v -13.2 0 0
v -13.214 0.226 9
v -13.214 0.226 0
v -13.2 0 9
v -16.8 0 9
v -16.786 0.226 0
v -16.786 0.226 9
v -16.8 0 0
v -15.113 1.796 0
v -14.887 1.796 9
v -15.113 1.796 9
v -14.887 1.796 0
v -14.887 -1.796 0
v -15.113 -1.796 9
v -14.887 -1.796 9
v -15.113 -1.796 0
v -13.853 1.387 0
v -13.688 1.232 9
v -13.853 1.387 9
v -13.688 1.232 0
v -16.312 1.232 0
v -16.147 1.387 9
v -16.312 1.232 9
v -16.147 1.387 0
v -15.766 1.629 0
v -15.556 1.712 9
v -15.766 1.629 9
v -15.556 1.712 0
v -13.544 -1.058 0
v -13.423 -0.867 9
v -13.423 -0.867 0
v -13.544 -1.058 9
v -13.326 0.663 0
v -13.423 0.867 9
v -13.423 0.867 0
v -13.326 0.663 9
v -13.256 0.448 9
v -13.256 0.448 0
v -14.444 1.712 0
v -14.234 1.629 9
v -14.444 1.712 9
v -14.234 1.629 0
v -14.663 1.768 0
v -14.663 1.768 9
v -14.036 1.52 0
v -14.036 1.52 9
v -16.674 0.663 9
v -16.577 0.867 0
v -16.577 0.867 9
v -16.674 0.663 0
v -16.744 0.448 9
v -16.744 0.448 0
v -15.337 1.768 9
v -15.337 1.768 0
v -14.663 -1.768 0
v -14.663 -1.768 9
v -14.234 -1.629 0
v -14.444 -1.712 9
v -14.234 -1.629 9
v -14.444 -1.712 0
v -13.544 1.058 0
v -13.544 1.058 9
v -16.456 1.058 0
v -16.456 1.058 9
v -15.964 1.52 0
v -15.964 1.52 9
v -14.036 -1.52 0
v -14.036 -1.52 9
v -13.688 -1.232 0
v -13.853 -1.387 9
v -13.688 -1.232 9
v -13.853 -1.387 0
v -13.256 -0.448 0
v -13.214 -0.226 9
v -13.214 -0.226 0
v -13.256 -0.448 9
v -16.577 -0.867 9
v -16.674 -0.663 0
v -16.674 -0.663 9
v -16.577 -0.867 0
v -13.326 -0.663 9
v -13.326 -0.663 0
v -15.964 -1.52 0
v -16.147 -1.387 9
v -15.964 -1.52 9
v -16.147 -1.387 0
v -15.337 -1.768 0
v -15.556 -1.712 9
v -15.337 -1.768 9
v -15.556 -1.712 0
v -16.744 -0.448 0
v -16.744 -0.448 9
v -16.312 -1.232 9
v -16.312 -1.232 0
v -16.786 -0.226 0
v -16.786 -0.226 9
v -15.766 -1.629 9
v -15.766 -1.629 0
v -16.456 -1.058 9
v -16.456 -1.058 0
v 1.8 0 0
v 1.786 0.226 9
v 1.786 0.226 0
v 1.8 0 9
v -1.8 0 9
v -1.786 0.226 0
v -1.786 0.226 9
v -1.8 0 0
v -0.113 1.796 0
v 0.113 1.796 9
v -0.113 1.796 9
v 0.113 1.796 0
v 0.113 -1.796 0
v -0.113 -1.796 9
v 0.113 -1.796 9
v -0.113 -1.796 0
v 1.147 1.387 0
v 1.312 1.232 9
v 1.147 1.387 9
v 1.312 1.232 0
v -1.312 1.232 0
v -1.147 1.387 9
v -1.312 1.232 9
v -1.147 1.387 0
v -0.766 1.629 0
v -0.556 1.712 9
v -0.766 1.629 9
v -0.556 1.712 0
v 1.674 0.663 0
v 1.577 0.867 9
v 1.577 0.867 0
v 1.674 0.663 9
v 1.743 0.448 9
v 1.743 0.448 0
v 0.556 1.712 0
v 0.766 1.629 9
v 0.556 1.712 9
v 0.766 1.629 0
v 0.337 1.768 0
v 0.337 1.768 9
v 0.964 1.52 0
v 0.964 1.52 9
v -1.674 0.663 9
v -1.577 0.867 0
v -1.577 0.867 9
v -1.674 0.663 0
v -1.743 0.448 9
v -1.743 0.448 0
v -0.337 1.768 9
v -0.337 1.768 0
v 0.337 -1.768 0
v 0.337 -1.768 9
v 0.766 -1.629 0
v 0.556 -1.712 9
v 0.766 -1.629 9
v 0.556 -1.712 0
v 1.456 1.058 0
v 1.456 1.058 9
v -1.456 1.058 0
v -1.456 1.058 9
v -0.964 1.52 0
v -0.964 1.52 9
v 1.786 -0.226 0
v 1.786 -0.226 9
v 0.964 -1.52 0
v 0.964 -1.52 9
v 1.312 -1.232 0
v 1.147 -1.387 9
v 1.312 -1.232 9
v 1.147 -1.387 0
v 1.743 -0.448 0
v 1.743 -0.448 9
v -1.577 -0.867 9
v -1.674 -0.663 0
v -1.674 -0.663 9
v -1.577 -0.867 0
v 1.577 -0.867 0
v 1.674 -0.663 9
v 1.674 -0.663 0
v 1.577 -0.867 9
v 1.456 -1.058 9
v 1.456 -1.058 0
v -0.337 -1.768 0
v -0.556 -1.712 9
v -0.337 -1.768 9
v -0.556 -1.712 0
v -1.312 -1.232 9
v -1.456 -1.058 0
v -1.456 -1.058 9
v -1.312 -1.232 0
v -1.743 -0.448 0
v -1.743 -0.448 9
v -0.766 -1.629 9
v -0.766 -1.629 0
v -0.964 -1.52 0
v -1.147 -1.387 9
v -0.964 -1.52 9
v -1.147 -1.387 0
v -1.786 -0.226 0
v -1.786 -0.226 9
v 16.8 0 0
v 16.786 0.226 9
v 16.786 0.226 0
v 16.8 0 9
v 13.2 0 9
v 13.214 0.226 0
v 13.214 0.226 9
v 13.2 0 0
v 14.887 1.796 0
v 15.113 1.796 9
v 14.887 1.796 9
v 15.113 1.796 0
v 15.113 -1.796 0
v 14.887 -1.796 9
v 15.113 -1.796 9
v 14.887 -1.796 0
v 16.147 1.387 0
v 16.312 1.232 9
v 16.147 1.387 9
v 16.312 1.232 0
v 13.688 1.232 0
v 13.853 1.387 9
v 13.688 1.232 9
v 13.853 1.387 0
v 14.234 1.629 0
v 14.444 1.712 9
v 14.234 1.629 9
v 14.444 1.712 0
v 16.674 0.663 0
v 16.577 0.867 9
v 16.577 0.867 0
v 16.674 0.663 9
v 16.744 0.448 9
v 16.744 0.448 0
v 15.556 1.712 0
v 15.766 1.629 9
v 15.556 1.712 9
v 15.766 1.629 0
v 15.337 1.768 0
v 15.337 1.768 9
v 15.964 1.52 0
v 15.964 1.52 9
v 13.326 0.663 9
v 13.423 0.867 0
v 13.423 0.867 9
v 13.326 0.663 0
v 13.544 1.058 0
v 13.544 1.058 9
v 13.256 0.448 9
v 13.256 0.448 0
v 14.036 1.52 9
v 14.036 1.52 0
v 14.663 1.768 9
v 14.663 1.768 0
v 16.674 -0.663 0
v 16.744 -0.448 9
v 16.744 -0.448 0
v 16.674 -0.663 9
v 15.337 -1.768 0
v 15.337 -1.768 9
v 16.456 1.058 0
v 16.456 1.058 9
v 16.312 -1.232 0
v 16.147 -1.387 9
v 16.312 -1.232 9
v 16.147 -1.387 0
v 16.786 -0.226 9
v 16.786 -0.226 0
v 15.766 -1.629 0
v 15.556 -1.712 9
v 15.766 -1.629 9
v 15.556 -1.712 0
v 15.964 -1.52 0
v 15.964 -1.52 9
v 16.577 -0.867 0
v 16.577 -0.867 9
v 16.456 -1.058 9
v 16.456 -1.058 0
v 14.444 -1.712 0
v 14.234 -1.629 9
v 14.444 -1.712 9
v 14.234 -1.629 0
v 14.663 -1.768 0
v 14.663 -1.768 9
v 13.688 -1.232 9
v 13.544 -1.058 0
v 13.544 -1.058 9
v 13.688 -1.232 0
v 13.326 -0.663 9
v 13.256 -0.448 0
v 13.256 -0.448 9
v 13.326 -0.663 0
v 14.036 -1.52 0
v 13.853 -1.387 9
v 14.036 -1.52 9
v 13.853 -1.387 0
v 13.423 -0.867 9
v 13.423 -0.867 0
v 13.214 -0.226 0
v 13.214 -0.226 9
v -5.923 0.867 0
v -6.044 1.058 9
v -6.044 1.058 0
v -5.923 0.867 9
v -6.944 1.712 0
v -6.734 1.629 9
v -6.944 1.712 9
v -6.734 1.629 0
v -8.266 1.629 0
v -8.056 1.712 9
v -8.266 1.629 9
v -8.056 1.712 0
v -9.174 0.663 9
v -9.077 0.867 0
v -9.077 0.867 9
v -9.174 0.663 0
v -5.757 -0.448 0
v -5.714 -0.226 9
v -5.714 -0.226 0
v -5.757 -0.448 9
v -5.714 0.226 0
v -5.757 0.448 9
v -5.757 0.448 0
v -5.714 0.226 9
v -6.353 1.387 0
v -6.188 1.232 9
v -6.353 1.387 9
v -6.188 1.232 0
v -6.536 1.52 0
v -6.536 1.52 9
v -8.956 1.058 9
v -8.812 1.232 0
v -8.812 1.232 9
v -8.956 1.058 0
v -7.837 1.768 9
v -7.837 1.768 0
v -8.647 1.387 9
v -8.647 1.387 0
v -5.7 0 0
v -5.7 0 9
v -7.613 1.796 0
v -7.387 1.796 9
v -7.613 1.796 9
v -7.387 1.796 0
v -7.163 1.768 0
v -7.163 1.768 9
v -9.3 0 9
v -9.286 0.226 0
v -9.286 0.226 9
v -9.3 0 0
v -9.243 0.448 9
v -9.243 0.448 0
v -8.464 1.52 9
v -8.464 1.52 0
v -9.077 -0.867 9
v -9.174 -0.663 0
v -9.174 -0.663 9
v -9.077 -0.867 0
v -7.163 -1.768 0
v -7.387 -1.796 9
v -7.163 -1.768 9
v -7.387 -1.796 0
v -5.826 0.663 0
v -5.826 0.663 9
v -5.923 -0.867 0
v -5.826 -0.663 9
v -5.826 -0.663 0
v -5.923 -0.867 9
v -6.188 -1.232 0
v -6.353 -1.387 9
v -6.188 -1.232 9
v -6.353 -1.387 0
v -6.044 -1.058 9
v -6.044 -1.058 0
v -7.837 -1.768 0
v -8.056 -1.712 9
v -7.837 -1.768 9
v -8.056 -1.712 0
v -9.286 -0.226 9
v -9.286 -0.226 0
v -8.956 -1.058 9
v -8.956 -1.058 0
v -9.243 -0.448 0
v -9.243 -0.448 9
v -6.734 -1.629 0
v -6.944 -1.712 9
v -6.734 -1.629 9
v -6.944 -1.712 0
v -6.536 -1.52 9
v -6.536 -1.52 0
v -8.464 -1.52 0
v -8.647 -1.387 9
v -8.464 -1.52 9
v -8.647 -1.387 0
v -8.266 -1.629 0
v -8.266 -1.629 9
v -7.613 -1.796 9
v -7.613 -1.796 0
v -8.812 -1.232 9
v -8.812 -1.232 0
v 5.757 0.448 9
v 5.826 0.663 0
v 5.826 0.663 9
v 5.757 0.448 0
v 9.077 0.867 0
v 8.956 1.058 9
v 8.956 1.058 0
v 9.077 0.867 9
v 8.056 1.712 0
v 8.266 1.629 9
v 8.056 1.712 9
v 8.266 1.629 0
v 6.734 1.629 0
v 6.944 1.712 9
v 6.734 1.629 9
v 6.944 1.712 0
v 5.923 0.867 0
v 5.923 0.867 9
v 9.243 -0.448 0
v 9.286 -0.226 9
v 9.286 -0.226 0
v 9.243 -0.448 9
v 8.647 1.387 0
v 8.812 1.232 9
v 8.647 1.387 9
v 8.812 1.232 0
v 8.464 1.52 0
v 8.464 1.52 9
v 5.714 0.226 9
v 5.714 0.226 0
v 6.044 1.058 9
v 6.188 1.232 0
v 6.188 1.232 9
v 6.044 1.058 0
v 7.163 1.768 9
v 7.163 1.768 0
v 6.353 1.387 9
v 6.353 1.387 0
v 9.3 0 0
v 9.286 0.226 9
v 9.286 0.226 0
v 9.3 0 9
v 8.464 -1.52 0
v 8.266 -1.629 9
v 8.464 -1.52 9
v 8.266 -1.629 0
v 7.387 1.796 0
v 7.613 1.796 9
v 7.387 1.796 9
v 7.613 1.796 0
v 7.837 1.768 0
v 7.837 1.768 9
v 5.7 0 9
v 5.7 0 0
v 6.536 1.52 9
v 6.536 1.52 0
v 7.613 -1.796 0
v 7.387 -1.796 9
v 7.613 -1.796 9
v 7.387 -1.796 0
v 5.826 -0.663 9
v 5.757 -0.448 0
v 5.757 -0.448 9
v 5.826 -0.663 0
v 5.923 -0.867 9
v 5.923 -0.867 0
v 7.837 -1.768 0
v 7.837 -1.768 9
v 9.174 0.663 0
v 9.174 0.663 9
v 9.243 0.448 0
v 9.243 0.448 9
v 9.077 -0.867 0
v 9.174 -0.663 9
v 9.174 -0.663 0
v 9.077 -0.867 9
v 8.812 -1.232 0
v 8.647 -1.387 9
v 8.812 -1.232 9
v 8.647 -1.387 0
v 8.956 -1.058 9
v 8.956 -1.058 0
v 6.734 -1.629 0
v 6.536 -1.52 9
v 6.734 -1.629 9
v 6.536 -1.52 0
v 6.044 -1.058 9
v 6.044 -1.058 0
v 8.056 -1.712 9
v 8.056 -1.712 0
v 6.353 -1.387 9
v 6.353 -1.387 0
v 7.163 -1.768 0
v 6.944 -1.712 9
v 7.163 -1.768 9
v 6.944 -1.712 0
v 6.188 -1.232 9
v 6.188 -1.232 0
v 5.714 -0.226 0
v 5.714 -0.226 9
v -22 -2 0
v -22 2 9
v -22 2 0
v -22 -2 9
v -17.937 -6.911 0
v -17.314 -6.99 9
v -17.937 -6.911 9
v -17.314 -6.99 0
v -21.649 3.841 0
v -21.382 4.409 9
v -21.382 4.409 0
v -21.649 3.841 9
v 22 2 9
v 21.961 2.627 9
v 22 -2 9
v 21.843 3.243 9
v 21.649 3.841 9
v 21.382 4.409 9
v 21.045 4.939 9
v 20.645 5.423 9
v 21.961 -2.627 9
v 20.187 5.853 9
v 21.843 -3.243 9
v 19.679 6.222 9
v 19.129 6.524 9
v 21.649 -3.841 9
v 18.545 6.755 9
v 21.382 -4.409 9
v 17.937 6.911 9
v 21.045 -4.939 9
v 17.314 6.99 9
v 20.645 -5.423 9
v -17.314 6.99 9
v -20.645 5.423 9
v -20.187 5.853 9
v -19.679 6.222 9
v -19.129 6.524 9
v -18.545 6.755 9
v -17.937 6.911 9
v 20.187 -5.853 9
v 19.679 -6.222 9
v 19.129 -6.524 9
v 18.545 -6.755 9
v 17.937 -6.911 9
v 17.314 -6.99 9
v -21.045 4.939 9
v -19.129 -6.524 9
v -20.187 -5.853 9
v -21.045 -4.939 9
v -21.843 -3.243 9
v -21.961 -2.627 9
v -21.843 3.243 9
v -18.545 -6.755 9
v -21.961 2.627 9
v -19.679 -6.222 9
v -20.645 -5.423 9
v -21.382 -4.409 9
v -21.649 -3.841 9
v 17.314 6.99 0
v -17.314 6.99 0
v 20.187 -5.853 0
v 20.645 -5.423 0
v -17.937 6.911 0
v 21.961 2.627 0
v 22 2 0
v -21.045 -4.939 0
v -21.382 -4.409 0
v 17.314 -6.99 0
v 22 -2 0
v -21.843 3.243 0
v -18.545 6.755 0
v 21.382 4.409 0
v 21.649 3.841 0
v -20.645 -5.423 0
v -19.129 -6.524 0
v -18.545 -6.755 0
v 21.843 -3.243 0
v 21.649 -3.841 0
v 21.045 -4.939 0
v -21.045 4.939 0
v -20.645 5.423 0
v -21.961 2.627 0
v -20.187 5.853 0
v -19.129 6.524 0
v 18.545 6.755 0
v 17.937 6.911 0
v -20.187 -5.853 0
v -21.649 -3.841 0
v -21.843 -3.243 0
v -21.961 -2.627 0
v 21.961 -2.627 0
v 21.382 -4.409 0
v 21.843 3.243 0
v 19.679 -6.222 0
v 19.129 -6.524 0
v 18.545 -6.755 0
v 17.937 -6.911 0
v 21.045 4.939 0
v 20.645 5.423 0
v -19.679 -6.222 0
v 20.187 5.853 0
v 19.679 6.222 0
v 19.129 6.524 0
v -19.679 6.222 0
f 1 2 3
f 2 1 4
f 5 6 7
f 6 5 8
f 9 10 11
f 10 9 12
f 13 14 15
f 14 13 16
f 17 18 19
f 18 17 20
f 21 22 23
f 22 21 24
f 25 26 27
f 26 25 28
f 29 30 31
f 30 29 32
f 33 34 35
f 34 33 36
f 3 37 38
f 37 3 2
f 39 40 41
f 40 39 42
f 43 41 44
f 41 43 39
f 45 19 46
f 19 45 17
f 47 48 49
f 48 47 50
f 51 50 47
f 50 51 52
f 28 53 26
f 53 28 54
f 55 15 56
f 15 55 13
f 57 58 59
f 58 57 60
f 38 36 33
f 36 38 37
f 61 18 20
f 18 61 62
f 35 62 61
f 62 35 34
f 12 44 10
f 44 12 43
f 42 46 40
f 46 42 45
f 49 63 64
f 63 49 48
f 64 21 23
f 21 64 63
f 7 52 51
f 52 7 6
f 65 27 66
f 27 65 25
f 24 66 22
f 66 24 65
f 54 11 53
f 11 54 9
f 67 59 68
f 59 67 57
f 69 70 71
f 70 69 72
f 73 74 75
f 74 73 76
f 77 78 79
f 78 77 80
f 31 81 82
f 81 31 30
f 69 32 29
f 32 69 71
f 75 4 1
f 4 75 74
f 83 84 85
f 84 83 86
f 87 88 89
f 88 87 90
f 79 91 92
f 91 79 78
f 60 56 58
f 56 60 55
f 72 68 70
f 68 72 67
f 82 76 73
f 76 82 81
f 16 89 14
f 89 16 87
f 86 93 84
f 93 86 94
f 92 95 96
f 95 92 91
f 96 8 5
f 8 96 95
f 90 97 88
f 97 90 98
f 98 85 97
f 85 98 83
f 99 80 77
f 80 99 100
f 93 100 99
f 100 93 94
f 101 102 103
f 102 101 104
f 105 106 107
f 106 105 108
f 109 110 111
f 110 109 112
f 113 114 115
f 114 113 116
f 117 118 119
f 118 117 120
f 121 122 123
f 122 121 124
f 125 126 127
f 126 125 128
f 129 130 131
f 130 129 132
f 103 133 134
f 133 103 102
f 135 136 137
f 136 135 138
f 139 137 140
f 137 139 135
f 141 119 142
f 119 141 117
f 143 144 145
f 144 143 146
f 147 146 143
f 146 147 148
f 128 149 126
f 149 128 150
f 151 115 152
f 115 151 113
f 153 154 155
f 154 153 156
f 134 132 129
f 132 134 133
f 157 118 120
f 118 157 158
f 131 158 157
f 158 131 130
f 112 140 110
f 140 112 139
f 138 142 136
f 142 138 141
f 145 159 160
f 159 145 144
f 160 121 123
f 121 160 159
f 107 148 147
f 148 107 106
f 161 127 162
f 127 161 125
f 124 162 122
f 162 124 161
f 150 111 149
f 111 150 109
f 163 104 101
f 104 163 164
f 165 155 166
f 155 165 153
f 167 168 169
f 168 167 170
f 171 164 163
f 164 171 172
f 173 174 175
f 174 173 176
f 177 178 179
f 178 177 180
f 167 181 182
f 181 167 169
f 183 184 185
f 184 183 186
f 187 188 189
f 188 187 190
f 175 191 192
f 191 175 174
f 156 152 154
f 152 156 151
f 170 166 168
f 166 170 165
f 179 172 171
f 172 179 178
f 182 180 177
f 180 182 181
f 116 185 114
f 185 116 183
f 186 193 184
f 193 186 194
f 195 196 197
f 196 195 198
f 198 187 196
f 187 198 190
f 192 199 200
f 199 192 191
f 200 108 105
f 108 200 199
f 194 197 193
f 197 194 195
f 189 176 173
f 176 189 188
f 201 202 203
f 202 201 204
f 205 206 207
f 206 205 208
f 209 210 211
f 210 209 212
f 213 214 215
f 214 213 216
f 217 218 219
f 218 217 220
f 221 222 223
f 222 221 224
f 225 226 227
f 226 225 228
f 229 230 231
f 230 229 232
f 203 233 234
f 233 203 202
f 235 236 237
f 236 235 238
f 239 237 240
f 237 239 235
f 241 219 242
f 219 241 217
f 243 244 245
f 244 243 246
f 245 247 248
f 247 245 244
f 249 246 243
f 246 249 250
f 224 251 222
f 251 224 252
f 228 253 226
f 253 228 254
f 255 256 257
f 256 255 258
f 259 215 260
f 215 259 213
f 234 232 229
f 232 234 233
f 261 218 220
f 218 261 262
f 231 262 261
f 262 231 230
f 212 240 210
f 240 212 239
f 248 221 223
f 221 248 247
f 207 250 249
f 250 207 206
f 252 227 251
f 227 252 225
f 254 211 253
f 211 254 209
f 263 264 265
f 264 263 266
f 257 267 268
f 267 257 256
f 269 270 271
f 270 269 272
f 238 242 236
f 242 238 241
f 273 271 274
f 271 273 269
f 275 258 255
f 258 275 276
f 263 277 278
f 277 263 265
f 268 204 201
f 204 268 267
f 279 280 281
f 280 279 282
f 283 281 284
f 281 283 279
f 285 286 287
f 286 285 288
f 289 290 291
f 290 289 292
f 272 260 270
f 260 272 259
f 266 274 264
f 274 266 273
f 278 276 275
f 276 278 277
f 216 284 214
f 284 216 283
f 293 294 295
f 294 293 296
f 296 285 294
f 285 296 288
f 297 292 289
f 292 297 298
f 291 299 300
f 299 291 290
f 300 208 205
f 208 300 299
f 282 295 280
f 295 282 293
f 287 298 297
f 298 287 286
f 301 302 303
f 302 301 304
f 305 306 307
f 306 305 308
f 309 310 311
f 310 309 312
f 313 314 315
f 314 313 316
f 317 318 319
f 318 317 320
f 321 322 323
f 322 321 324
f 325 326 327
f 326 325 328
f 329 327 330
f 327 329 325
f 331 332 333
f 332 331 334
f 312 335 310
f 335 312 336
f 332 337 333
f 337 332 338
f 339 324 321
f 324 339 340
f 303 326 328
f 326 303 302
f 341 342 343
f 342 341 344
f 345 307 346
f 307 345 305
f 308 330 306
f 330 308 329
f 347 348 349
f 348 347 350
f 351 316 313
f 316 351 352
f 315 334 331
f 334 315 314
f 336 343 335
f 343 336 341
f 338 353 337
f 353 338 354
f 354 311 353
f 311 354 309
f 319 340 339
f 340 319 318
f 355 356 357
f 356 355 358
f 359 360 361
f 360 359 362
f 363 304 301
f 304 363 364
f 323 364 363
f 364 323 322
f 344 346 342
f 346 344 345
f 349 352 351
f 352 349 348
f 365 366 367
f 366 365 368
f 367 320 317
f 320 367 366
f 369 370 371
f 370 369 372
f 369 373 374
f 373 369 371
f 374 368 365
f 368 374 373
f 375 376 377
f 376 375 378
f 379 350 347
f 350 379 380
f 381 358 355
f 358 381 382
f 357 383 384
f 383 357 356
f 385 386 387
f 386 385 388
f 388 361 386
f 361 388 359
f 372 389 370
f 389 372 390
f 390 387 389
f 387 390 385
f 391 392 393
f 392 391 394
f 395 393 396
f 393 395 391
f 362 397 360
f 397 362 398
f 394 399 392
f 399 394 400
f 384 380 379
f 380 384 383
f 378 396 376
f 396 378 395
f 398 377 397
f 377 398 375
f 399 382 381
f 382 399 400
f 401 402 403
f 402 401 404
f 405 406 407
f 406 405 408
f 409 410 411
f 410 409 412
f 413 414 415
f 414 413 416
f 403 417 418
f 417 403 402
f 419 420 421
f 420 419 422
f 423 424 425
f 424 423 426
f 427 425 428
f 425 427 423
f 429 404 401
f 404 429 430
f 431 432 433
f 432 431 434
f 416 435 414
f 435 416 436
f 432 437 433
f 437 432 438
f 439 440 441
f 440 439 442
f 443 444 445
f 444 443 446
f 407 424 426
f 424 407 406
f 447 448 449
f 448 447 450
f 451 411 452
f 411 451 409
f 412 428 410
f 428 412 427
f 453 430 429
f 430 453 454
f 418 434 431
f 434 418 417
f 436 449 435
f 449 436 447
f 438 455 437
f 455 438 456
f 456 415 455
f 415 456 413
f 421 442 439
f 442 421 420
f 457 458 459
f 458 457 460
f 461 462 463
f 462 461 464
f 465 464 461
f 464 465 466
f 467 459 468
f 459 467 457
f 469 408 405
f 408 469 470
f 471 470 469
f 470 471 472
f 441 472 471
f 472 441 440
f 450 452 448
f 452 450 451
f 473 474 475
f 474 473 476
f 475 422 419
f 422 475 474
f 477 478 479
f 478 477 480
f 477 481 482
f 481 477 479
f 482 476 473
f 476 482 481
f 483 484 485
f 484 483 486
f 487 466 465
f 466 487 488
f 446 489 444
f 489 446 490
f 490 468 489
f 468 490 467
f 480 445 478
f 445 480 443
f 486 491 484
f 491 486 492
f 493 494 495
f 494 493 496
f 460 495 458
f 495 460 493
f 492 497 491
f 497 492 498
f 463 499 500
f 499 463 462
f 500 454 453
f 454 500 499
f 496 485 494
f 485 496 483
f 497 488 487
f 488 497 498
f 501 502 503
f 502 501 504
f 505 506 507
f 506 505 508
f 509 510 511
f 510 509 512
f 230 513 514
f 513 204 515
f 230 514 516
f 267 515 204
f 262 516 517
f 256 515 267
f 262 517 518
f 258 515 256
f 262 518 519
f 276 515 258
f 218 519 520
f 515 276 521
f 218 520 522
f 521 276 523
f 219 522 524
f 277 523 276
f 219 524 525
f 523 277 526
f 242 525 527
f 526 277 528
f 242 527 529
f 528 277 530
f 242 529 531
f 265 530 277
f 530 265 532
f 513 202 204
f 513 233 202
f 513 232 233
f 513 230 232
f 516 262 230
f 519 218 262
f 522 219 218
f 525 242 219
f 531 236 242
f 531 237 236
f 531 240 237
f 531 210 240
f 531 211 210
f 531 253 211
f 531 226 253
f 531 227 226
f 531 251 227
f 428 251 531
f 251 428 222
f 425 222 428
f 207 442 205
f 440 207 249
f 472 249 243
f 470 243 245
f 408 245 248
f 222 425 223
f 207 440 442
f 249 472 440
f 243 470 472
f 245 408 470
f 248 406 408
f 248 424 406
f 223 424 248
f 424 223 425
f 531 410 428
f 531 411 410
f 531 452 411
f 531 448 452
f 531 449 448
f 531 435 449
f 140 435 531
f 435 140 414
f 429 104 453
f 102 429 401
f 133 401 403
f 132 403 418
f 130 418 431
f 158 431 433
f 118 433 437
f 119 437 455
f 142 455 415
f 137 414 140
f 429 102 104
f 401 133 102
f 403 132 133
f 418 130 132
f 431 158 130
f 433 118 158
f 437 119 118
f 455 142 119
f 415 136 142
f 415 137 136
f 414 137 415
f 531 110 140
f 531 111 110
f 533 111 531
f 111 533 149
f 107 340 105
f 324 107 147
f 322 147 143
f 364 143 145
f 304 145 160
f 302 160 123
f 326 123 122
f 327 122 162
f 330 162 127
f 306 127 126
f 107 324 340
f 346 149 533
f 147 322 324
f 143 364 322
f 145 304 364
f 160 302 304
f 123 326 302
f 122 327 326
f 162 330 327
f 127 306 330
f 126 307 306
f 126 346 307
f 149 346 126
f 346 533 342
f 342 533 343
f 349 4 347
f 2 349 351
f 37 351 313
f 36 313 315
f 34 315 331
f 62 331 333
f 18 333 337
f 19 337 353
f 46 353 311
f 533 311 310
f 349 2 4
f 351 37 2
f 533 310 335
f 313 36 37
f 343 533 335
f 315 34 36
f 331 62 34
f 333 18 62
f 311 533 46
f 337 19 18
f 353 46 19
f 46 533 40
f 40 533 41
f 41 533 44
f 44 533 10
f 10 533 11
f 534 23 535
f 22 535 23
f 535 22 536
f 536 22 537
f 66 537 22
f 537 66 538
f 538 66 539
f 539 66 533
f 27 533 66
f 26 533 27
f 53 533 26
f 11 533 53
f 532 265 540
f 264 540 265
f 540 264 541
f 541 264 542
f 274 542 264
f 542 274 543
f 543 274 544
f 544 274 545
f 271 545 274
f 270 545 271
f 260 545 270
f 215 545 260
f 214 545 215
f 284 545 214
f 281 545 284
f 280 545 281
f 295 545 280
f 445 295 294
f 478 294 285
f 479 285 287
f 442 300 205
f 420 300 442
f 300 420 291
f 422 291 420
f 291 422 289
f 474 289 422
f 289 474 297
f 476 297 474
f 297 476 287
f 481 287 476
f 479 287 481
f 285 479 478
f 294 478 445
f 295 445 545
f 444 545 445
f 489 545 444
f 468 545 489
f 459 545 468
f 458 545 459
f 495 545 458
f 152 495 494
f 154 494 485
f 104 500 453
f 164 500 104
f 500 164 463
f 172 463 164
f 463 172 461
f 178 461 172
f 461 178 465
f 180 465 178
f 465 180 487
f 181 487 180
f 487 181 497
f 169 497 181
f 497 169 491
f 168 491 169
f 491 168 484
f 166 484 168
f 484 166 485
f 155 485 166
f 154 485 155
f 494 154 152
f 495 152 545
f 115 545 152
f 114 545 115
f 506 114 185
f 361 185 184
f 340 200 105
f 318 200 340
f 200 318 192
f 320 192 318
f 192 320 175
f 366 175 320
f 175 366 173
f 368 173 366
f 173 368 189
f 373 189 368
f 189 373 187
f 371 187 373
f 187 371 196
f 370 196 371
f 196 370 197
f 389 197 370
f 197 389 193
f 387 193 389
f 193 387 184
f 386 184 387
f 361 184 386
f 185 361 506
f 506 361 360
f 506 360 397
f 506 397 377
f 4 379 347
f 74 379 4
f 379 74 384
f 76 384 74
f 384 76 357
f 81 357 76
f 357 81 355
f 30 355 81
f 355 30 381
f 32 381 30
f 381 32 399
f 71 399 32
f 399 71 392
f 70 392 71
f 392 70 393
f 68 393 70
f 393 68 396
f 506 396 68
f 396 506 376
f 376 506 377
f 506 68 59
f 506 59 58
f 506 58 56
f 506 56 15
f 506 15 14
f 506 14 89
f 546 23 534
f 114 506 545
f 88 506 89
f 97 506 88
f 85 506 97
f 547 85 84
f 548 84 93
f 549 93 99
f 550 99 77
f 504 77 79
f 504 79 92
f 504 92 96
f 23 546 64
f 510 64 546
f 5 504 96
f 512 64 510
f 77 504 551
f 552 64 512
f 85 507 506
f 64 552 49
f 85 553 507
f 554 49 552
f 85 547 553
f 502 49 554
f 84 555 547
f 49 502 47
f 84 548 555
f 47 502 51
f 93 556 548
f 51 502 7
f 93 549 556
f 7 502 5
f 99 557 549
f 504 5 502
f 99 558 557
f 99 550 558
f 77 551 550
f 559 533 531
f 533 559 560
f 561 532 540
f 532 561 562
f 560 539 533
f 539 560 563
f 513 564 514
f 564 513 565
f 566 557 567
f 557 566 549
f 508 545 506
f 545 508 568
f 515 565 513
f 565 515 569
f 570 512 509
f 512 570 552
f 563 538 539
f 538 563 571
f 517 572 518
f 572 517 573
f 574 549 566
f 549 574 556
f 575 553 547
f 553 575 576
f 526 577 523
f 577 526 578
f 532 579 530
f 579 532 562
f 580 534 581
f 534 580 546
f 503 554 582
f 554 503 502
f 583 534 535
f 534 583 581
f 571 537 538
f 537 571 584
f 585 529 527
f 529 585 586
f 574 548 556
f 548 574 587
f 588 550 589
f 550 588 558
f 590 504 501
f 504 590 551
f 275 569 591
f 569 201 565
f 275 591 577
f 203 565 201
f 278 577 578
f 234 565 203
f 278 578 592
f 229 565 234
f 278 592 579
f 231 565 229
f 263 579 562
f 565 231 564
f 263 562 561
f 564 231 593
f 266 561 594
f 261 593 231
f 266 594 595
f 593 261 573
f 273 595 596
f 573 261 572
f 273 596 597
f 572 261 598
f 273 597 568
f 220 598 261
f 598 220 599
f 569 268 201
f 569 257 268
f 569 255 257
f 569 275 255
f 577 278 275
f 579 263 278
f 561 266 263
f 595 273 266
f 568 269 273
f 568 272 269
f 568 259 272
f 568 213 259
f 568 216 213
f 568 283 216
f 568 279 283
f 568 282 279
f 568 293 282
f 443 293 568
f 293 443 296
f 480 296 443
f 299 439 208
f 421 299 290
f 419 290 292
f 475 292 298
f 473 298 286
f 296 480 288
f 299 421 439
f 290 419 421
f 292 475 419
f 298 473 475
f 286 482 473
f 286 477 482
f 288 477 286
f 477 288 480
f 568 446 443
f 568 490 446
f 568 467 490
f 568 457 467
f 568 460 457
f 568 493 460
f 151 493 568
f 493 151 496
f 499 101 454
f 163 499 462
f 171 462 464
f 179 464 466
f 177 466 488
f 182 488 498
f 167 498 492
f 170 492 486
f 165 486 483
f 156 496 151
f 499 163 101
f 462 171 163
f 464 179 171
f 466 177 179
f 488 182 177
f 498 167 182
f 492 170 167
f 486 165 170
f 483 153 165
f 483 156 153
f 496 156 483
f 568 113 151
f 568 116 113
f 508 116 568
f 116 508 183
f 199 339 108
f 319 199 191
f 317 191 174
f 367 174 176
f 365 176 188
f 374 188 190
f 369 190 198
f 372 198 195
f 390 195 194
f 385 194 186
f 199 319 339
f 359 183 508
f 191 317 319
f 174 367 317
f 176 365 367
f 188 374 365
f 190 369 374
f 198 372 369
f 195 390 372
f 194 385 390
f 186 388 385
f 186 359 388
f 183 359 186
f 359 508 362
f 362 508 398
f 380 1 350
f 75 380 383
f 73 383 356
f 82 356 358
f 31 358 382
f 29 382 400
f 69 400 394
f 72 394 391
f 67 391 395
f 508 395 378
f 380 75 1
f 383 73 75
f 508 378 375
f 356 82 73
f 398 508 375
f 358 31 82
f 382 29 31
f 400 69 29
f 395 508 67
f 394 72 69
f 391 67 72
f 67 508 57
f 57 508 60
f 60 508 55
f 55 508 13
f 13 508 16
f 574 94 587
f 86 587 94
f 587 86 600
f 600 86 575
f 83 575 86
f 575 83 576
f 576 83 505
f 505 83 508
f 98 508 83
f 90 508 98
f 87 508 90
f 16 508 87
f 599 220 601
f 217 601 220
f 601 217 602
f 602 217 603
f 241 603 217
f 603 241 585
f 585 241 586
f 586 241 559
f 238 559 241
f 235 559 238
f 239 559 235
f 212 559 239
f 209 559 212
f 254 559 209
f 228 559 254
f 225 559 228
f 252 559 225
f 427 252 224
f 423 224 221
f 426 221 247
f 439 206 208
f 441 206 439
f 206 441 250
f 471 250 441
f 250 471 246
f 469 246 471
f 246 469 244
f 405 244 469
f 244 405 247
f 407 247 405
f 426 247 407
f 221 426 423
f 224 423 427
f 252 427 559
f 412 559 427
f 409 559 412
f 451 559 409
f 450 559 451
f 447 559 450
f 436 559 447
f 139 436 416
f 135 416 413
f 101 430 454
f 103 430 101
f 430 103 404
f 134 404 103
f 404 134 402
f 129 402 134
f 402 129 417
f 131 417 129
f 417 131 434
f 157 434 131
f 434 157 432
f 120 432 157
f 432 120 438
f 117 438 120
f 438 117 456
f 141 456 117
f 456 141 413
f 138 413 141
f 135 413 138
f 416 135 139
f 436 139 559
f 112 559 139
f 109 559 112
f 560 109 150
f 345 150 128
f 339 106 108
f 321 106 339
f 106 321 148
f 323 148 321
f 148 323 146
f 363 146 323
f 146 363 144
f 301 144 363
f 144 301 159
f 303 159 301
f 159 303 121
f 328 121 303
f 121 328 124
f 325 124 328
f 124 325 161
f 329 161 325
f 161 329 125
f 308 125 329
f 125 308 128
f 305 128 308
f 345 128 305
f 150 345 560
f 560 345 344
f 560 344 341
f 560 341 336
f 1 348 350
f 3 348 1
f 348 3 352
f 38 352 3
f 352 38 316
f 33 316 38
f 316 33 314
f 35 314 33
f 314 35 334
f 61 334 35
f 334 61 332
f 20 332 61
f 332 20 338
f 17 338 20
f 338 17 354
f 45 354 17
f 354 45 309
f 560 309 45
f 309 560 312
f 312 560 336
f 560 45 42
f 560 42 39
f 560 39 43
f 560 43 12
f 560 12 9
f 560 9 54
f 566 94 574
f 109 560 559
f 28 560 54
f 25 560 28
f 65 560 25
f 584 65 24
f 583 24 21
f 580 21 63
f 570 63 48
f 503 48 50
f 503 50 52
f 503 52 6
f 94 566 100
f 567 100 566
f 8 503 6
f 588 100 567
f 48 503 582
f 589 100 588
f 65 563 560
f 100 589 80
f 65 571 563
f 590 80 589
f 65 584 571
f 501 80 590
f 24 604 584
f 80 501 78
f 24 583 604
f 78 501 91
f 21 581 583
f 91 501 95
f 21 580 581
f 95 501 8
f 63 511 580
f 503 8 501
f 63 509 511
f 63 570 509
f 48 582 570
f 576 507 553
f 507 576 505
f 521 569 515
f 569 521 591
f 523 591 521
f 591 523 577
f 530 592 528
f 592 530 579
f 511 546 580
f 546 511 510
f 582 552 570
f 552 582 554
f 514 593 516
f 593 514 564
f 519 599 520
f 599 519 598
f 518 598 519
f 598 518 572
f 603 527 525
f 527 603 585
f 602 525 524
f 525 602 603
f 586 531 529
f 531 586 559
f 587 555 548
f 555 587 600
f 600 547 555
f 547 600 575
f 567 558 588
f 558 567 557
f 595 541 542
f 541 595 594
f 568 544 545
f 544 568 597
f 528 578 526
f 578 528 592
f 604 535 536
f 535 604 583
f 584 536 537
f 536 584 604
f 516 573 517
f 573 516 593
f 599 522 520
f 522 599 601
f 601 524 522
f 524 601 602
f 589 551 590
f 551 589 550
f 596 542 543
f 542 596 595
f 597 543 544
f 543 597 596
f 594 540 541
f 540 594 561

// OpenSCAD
$fn = 50;


difference() {
	union() {
		hull() {
			translate(v = [-17.0000000000, 2.0000000000, 0]) {
				cylinder(h = 9, r = 5);
			}
			translate(v = [17.0000000000, 2.0000000000, 0]) {
				cylinder(h = 9, r = 5);
			}
			translate(v = [-17.0000000000, -2.0000000000, 0]) {
				cylinder(h = 9, r = 5);
			}
			translate(v = [17.0000000000, -2.0000000000, 0]) {
				cylinder(h = 9, r = 5);
			}
		}
	}
	union() {
		translate(v = [-15.0000000000, 0.0000000000, 0]) {
			translate(v = [0, 0, -100]) {
				cylinder(h = 200, r = 1.8000000000);
			}
		}
		translate(v = [0, 0, -100]) {
			cylinder(h = 200, r = 1.8000000000);
		}
		translate(v = [15.0000000000, 0.0000000000, 0]) {
			translate(v = [0, 0, -100]) {
				cylinder(h = 200, r = 1.8000000000);
			}
		}
		translate(v = [-15.0000000000, 0.0000000000, 0]) {
			translate(v = [0, 0, -100]) {
				cylinder(h = 200, r = 1.8000000000);
			}
		}
		translate(v = [-7.5000000000, 0.0000000000, 0]) {
			translate(v = [0, 0, -100]) {
				cylinder(h = 200, r = 1.8000000000);
			}
		}
		translate(v = [0, 0, -100]) {
			cylinder(h = 200, r = 1.8000000000);
		}
		translate(v = [7.5000000000, 0.0000000000, 0]) {
			translate(v = [0, 0, -100]) {
				cylinder(h = 200, r = 1.8000000000);
			}
		}
		translate(v = [15.0000000000, 0.0000000000, 0]) {
			translate(v = [0, 0, -100]) {
				cylinder(h = 200, r = 1.8000000000);
			}
		}
	}
}
